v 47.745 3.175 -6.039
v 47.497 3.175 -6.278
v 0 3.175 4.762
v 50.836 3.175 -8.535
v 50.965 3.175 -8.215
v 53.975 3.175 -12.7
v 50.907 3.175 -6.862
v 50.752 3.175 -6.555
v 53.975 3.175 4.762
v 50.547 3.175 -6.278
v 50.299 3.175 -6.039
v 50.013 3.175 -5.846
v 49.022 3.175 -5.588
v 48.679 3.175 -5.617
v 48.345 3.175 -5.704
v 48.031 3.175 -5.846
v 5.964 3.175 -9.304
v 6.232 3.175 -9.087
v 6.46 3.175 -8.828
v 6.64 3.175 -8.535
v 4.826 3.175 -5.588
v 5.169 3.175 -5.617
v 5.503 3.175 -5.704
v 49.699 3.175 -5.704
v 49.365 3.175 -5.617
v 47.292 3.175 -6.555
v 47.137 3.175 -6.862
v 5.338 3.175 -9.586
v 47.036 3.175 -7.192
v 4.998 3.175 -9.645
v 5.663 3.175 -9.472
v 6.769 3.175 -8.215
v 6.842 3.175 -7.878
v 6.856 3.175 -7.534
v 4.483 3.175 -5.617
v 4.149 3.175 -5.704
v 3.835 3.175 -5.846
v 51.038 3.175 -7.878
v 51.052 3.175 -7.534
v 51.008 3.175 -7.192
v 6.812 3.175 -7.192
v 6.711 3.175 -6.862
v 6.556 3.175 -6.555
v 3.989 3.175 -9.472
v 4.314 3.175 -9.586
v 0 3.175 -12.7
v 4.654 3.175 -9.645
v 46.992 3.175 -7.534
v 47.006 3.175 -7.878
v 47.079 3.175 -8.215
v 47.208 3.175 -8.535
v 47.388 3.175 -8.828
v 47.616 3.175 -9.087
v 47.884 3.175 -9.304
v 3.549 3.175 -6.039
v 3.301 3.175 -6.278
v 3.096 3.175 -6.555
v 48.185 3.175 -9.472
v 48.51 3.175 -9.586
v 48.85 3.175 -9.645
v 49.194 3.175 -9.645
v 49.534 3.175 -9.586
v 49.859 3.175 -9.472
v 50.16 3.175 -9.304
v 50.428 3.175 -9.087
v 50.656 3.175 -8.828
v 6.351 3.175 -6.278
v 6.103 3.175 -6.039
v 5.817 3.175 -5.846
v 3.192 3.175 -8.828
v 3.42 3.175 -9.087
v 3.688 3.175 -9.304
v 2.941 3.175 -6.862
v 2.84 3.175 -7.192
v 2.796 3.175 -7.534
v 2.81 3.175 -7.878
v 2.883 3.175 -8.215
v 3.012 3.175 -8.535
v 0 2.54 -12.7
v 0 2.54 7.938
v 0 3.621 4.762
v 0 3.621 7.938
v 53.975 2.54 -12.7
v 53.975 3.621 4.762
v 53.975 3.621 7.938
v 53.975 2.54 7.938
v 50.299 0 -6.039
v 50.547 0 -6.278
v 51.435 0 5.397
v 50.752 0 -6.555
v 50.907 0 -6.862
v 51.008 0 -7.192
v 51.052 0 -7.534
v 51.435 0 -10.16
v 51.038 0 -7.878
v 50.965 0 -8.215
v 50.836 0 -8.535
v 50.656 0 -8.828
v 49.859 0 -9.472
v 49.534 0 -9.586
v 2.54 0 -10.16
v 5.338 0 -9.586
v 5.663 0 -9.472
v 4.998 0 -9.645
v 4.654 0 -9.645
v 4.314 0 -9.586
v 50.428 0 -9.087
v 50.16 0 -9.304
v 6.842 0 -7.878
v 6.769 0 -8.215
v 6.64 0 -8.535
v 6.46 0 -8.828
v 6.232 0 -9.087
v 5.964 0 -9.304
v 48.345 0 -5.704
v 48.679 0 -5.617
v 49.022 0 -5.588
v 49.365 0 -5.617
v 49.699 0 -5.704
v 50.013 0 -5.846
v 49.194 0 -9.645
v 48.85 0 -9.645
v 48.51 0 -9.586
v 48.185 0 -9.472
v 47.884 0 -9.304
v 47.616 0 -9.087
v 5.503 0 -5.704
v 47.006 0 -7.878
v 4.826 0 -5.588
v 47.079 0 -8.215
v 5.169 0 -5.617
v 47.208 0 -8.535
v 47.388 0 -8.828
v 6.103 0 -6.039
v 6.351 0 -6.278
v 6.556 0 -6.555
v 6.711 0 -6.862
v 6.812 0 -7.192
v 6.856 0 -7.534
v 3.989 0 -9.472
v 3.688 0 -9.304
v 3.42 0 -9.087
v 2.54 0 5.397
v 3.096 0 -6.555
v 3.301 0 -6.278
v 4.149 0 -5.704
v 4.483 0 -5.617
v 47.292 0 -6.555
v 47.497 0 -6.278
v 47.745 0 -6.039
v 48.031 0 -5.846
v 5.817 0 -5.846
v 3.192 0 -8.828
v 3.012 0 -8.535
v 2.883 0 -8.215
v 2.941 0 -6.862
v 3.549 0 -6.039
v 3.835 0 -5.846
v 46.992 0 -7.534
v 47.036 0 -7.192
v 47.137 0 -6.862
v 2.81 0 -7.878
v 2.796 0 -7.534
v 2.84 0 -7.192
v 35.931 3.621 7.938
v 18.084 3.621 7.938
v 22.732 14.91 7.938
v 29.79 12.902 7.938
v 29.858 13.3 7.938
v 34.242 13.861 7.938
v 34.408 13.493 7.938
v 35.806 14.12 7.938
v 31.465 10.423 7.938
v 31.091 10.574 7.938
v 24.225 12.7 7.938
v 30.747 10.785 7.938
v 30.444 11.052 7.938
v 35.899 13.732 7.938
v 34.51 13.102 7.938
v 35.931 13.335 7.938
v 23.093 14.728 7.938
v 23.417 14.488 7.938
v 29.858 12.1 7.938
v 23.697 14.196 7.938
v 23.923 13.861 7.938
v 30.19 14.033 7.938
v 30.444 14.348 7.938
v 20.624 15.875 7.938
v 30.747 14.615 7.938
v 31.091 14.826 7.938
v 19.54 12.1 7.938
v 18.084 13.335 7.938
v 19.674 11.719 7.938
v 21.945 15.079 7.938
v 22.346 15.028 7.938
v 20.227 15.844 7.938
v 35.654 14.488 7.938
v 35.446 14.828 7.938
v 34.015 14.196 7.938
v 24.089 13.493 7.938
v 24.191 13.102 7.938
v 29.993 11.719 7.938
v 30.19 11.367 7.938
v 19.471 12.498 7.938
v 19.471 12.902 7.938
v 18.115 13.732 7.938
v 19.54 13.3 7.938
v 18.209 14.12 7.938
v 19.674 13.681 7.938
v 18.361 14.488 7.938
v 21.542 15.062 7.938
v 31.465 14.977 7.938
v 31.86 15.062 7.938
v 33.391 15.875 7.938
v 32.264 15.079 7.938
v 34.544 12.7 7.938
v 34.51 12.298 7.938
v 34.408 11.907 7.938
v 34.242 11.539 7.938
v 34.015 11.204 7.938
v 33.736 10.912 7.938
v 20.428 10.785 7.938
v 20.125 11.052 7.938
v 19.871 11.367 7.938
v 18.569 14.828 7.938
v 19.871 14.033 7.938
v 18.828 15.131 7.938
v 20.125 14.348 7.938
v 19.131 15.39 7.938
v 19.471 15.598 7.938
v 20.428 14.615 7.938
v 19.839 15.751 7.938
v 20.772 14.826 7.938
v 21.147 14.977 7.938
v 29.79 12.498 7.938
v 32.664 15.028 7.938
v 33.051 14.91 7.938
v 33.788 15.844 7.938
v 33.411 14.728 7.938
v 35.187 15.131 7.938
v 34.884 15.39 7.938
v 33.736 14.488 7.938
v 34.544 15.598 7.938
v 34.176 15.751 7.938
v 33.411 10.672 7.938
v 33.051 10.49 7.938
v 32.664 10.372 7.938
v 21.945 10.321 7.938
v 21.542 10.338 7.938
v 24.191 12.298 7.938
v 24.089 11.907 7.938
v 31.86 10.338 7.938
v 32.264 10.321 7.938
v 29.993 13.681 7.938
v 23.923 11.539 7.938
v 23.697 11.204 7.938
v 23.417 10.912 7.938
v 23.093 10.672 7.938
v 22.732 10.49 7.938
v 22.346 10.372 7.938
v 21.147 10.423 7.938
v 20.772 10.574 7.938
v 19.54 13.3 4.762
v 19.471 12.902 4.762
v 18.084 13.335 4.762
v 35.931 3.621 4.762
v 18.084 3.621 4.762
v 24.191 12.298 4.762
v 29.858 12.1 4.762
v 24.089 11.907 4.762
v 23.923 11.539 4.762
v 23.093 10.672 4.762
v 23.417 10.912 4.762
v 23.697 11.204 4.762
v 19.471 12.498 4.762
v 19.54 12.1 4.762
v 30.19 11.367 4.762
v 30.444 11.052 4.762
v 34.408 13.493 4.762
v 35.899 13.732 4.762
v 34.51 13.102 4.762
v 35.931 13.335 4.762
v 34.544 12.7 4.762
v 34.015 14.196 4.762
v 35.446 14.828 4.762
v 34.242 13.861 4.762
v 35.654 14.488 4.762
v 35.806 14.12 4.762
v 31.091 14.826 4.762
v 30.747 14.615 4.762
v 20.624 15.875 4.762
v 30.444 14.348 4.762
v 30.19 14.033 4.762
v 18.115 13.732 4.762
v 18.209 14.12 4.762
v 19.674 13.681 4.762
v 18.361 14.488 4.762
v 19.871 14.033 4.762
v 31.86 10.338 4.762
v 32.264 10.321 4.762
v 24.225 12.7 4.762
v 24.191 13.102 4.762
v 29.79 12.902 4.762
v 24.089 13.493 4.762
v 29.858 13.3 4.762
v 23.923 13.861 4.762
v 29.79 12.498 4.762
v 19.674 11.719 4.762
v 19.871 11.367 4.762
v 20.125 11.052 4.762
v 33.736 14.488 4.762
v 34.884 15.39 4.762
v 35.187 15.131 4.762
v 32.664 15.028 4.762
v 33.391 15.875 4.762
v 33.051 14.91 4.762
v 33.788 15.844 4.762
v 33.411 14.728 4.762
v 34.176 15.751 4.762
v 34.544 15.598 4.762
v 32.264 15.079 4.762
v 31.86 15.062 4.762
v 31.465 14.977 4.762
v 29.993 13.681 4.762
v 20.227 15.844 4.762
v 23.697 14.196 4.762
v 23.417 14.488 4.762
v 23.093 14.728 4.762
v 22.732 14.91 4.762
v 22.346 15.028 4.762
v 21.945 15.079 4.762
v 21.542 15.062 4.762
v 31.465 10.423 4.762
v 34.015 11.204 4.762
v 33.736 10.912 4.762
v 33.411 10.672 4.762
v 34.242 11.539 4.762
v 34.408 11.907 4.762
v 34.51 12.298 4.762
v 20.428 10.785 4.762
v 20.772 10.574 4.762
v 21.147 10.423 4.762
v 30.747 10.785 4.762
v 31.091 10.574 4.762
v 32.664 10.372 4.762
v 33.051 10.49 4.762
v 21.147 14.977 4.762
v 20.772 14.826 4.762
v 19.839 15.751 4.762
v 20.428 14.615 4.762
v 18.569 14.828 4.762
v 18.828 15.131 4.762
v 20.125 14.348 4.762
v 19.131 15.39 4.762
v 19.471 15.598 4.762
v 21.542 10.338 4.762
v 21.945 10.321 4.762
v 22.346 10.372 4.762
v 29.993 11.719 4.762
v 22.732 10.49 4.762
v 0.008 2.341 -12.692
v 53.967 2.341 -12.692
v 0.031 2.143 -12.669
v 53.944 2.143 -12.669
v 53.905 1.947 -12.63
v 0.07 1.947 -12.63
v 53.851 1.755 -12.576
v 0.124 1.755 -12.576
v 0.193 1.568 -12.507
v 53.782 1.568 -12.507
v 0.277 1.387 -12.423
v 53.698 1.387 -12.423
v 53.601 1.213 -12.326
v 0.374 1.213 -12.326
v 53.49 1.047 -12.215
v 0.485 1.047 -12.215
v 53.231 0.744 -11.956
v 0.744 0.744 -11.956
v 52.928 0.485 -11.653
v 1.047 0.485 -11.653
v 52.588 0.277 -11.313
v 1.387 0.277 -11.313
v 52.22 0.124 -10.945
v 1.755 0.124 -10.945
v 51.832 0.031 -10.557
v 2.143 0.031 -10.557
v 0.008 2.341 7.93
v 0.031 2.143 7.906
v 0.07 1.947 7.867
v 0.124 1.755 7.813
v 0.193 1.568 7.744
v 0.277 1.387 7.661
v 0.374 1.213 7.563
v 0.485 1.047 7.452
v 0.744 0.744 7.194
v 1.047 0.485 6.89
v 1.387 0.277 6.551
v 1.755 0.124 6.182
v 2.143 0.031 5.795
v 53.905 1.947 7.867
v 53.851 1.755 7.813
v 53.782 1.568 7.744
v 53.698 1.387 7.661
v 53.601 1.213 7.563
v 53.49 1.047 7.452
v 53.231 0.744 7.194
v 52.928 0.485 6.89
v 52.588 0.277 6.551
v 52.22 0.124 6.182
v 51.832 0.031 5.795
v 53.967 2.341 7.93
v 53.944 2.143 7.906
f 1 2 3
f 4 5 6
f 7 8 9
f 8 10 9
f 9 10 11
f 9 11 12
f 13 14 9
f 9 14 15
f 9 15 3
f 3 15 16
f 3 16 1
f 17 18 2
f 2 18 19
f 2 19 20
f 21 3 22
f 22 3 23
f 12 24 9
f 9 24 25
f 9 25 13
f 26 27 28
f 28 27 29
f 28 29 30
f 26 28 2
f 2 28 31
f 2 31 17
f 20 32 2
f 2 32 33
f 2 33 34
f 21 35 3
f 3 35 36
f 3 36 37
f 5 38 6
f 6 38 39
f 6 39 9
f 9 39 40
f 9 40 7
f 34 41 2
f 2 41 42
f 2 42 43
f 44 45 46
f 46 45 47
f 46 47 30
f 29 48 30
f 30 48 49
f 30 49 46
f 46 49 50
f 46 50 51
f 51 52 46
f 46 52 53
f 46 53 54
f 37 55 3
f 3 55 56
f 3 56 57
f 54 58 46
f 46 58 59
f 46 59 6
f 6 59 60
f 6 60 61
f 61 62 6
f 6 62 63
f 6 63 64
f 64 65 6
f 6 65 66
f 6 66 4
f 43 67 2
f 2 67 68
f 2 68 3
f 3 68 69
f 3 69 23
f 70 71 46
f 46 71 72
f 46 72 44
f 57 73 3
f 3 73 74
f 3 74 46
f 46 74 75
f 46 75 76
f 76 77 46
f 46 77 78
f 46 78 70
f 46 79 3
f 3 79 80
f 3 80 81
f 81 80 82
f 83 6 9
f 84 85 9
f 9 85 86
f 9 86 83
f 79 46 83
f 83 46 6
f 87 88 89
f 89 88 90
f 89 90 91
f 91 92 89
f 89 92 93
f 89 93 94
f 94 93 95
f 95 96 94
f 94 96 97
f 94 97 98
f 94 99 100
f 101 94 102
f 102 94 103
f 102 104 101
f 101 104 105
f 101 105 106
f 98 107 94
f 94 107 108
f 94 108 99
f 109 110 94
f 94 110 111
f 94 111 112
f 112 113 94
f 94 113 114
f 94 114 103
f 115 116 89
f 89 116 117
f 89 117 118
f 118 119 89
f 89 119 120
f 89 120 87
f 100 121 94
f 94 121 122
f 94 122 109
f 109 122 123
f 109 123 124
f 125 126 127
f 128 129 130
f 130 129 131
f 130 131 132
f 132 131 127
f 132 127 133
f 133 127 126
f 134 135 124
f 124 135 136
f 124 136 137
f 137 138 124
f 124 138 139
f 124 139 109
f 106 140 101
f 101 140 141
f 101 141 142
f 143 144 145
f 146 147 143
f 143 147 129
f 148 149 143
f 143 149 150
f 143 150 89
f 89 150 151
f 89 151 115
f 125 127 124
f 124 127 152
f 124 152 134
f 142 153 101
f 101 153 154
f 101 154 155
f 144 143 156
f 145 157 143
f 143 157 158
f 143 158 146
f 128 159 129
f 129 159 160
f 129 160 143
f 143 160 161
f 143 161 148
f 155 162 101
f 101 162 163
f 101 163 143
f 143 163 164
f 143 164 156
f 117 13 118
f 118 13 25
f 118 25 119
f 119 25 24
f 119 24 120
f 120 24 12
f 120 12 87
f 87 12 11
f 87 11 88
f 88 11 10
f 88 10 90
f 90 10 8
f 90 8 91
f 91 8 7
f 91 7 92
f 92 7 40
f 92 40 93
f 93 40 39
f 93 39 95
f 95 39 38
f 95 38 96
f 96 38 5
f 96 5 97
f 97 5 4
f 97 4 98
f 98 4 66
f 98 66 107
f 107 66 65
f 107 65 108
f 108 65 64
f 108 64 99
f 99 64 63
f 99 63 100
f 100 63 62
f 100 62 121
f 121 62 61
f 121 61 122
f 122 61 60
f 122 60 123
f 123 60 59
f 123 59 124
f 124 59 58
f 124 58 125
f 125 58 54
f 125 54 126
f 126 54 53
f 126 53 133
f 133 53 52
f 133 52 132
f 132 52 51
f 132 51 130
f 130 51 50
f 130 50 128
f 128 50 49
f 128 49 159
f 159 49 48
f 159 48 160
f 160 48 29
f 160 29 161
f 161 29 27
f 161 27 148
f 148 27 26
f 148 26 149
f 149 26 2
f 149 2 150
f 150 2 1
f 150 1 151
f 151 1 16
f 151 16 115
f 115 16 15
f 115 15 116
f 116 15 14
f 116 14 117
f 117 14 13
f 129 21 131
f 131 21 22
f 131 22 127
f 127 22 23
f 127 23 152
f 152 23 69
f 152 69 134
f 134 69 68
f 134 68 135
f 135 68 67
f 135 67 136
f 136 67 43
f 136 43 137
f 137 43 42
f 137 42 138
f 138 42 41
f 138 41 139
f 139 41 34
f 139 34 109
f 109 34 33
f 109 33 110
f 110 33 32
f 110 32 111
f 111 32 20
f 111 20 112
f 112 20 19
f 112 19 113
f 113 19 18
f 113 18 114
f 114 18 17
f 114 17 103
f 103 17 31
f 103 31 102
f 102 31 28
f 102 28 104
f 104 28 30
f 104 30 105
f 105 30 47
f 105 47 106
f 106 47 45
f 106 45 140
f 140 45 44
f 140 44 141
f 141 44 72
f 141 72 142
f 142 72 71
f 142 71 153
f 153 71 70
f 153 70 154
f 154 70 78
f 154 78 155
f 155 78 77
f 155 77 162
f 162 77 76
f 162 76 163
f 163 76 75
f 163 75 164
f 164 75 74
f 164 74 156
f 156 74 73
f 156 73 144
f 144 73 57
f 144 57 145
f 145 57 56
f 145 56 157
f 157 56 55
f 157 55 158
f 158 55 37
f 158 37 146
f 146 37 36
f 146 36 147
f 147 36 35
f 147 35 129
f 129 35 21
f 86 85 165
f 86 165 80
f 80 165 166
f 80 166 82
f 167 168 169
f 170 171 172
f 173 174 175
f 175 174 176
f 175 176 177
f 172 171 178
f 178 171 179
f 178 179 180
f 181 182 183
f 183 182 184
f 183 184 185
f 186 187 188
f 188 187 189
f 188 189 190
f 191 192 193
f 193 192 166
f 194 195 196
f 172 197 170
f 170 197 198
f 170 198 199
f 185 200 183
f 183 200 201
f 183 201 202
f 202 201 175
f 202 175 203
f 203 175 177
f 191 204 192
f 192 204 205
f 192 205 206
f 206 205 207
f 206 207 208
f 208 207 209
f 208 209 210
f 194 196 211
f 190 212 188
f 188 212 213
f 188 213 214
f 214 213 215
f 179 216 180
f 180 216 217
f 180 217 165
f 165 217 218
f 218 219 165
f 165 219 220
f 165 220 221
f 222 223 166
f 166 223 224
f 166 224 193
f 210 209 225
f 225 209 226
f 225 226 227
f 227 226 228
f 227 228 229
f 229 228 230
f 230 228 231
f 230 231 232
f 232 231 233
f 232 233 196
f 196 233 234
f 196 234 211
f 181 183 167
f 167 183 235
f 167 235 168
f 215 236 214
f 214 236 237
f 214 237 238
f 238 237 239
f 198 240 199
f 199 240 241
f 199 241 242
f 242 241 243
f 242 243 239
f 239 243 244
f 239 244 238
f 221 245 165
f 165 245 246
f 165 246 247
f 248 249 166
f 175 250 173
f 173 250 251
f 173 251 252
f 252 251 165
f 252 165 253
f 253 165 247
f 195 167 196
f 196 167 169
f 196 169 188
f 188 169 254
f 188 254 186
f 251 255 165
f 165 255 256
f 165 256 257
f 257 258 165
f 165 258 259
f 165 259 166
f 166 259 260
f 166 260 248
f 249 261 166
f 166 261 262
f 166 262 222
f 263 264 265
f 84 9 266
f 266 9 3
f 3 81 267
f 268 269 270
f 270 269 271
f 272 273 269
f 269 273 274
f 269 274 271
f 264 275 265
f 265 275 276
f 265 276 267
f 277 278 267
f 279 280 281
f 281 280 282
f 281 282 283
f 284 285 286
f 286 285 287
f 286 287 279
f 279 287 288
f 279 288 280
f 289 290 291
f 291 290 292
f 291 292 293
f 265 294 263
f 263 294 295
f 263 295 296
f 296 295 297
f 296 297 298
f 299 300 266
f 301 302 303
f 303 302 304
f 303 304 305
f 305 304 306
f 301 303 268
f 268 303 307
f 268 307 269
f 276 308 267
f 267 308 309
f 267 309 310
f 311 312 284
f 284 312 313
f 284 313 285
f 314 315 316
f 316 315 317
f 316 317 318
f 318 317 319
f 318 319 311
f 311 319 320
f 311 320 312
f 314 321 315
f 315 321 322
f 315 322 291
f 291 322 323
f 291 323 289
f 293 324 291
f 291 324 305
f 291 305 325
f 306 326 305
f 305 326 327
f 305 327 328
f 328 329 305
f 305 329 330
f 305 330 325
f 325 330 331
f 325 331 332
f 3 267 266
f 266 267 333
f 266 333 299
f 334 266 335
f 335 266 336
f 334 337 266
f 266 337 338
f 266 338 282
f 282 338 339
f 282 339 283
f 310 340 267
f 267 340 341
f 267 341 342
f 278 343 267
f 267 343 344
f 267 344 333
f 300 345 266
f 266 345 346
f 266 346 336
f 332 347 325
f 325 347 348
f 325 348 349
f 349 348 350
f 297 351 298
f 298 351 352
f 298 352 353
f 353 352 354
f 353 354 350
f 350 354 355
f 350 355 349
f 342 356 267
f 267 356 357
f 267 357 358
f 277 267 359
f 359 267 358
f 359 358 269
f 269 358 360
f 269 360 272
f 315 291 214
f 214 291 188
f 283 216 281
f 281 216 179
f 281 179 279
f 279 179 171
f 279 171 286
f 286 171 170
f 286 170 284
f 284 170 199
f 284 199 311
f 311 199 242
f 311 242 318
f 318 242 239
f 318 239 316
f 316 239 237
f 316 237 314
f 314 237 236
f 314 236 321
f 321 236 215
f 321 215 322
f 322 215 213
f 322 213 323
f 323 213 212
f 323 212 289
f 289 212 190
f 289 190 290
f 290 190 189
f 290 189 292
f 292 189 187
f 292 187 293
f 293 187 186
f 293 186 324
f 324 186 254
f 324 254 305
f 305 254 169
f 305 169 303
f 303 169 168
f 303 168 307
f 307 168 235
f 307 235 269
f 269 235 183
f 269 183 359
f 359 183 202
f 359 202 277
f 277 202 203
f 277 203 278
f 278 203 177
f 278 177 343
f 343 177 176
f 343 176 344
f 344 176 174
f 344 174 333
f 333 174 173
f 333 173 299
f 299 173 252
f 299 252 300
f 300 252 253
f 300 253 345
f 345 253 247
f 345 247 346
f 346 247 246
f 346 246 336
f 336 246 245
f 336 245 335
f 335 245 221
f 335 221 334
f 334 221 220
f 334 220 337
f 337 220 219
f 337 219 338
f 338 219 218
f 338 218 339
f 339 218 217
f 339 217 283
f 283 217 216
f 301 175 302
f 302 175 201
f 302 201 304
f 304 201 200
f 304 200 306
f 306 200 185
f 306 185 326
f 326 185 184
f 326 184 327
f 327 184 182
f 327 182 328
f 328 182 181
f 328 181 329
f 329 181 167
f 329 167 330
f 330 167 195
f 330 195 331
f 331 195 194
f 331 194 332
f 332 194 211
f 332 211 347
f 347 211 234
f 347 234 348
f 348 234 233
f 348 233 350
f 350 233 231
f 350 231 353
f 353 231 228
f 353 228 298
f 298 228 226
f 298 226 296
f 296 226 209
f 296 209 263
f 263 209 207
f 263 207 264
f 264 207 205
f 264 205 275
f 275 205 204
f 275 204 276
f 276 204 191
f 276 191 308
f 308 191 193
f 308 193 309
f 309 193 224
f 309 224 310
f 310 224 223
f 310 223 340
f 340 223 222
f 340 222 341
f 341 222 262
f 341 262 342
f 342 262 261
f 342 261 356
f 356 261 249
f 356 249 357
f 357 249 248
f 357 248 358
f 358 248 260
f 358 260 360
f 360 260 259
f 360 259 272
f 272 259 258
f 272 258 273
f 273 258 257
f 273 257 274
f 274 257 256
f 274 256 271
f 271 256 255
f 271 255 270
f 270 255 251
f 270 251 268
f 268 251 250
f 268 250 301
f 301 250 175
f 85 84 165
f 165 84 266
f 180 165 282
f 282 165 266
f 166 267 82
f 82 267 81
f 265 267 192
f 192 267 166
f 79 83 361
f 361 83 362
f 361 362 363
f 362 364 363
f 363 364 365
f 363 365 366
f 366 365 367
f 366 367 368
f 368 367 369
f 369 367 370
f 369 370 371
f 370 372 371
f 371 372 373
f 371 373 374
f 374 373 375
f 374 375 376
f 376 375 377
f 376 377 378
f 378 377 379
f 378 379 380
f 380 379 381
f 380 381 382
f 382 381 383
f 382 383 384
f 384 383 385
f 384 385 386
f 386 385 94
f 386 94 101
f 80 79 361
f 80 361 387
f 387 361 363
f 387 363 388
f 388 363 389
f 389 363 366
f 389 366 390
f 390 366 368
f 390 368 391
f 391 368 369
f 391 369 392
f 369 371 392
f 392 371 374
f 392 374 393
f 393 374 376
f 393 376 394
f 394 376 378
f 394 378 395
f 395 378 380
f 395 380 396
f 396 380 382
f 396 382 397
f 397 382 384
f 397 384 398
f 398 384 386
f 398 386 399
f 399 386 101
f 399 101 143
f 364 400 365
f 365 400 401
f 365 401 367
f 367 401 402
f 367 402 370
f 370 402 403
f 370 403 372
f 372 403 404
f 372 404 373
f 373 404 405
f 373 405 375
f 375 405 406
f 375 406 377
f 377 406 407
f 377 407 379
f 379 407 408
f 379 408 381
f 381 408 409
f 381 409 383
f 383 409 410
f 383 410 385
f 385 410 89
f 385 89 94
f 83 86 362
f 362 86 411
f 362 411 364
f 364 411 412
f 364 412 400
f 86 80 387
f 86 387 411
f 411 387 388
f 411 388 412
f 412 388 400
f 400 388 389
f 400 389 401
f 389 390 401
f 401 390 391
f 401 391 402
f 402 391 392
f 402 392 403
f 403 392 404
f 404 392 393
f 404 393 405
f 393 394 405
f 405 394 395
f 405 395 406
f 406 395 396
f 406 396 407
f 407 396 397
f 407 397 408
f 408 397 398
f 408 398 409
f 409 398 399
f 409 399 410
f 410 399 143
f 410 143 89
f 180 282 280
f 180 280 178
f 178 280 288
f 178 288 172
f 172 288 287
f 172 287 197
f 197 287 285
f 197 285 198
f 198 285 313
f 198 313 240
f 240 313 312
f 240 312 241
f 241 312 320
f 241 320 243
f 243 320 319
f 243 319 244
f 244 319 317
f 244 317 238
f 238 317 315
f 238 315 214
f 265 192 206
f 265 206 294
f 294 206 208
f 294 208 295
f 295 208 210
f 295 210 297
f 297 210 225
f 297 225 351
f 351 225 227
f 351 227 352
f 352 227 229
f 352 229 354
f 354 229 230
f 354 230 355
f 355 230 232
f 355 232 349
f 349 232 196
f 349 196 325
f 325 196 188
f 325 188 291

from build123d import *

# Parameters (mm, degrees)
ESQUISSE1_W             = 53.975
ESQUISSE1_H             = 12.7
BOSS_EXTRU_1_DEPTH      = 3.175
ESQUISSE2_R             = 2.032
ENL_V_MAT_EXTRU_1_DEPTH = 3.175
ESQUISSE3_W             = 53.975
ESQUISSE3_H             = 7.9375
BOSS_EXTRU_2_DEPTH      = 3.175
ESQUISSE4_W             = 53.975
ESQUISSE4_H             = 3.175
BOSS_EXTRU_3_DEPTH      = 12.7
ESQUISSE5_R             = 2.38125
ENL_V_MAT_EXTRU_2_DEPTH = 12.7
ESQUISSE6_W             = 18.084193737
ESQUISSE6_H             = 12.254267232
ESQUISSE6_W_2           = 18.044331553
ENL_V_MAT_EXTRU_3_DEPTH = 12.7
CONG_2_R                = 2.54


with BuildPart() as part:
    # Esquisse1 → Boss.-Extru.1 (new body)
    with BuildSketch(Plane(origin=(0, 0, 0), x_dir=(1, 0, 0), z_dir=(0, 1, 0))):
        with Locations((26.9875, 6.35)):
            Rectangle(ESQUISSE1_W, ESQUISSE1_H)
    extrude(amount=BOSS_EXTRU_1_DEPTH)

    # Esquisse2 → Enlèv. mat.-Extru.1 (cut)
    with BuildSketch(Plane(origin=(0, 3.175, 0), x_dir=(1, 0, 0), z_dir=(0, 1, 0))):
        with Locations(Location((4.826, 7.62, 0), (0, 0, 270))):
            Circle(ESQUISSE2_R)
        with Locations(Location((49.022, 7.62, 0), (0, 0, 270))):
            Circle(ESQUISSE2_R)
    extrude(amount=-ENL_V_MAT_EXTRU_1_DEPTH, mode=Mode.SUBTRACT)

    # Esquisse3 → Boss.-Extru.2 (add)
    with BuildSketch(Plane(origin=(0, 3.175, 0), x_dir=(1, 0, 0), z_dir=(0, 1, 0))):
        with Locations((26.9875, -3.96875)):
            Rectangle(ESQUISSE3_W, ESQUISSE3_H)
    extrude(amount=-BOSS_EXTRU_2_DEPTH)

    # Esquisse4 → Boss.-Extru.3 (add)
    with BuildSketch(Plane(origin=(0, 3.175, 0), x_dir=(1, 0, 0), z_dir=(0, 1, 0))):
        with Locations((26.9875, -6.35)):
            Rectangle(ESQUISSE4_W, ESQUISSE4_H)
    extrude(amount=BOSS_EXTRU_3_DEPTH)

    # Esquisse5 → Enlèv. mat.-Extru.2 (cut)
    with BuildSketch(Plane.XY.offset(7.9375)):
        with Locations((21.844, 12.7)):
            Circle(ESQUISSE5_R)
        with Locations((32.16275, 12.7)):
            Circle(ESQUISSE5_R)
    extrude(amount=-ENL_V_MAT_EXTRU_2_DEPTH, mode=Mode.SUBTRACT)

    # Esquisse6 → Enlèv. mat.-Extru.3 (cut)
    with BuildSketch(Plane.XY.offset(7.9375)):
        with Locations((9.042096868, 9.747866384)):
            Rectangle(ESQUISSE6_W, ESQUISSE6_H)
        with Locations((44.952834224, 9.747866384)):
            Rectangle(ESQUISSE6_W_2, ESQUISSE6_H)
    extrude(amount=-ENL_V_MAT_EXTRU_3_DEPTH, mode=Mode.SUBTRACT)

    # Congé2
    cong_2_edges = [part.edges().sort_by_distance(p)[0] for p in [
        (26.9875, 0, 7.9375),
        (26.9875, 0, -12.7),
        (53.975, 0, -2.38125),
        (0, 0, -2.38125),
        (35.930668447, 15.875, 6.35),
        (18.084193737, 15.875, 6.35),
    ]]
    fillet(cong_2_edges, radius=CONG_2_R)


solid = part.part
